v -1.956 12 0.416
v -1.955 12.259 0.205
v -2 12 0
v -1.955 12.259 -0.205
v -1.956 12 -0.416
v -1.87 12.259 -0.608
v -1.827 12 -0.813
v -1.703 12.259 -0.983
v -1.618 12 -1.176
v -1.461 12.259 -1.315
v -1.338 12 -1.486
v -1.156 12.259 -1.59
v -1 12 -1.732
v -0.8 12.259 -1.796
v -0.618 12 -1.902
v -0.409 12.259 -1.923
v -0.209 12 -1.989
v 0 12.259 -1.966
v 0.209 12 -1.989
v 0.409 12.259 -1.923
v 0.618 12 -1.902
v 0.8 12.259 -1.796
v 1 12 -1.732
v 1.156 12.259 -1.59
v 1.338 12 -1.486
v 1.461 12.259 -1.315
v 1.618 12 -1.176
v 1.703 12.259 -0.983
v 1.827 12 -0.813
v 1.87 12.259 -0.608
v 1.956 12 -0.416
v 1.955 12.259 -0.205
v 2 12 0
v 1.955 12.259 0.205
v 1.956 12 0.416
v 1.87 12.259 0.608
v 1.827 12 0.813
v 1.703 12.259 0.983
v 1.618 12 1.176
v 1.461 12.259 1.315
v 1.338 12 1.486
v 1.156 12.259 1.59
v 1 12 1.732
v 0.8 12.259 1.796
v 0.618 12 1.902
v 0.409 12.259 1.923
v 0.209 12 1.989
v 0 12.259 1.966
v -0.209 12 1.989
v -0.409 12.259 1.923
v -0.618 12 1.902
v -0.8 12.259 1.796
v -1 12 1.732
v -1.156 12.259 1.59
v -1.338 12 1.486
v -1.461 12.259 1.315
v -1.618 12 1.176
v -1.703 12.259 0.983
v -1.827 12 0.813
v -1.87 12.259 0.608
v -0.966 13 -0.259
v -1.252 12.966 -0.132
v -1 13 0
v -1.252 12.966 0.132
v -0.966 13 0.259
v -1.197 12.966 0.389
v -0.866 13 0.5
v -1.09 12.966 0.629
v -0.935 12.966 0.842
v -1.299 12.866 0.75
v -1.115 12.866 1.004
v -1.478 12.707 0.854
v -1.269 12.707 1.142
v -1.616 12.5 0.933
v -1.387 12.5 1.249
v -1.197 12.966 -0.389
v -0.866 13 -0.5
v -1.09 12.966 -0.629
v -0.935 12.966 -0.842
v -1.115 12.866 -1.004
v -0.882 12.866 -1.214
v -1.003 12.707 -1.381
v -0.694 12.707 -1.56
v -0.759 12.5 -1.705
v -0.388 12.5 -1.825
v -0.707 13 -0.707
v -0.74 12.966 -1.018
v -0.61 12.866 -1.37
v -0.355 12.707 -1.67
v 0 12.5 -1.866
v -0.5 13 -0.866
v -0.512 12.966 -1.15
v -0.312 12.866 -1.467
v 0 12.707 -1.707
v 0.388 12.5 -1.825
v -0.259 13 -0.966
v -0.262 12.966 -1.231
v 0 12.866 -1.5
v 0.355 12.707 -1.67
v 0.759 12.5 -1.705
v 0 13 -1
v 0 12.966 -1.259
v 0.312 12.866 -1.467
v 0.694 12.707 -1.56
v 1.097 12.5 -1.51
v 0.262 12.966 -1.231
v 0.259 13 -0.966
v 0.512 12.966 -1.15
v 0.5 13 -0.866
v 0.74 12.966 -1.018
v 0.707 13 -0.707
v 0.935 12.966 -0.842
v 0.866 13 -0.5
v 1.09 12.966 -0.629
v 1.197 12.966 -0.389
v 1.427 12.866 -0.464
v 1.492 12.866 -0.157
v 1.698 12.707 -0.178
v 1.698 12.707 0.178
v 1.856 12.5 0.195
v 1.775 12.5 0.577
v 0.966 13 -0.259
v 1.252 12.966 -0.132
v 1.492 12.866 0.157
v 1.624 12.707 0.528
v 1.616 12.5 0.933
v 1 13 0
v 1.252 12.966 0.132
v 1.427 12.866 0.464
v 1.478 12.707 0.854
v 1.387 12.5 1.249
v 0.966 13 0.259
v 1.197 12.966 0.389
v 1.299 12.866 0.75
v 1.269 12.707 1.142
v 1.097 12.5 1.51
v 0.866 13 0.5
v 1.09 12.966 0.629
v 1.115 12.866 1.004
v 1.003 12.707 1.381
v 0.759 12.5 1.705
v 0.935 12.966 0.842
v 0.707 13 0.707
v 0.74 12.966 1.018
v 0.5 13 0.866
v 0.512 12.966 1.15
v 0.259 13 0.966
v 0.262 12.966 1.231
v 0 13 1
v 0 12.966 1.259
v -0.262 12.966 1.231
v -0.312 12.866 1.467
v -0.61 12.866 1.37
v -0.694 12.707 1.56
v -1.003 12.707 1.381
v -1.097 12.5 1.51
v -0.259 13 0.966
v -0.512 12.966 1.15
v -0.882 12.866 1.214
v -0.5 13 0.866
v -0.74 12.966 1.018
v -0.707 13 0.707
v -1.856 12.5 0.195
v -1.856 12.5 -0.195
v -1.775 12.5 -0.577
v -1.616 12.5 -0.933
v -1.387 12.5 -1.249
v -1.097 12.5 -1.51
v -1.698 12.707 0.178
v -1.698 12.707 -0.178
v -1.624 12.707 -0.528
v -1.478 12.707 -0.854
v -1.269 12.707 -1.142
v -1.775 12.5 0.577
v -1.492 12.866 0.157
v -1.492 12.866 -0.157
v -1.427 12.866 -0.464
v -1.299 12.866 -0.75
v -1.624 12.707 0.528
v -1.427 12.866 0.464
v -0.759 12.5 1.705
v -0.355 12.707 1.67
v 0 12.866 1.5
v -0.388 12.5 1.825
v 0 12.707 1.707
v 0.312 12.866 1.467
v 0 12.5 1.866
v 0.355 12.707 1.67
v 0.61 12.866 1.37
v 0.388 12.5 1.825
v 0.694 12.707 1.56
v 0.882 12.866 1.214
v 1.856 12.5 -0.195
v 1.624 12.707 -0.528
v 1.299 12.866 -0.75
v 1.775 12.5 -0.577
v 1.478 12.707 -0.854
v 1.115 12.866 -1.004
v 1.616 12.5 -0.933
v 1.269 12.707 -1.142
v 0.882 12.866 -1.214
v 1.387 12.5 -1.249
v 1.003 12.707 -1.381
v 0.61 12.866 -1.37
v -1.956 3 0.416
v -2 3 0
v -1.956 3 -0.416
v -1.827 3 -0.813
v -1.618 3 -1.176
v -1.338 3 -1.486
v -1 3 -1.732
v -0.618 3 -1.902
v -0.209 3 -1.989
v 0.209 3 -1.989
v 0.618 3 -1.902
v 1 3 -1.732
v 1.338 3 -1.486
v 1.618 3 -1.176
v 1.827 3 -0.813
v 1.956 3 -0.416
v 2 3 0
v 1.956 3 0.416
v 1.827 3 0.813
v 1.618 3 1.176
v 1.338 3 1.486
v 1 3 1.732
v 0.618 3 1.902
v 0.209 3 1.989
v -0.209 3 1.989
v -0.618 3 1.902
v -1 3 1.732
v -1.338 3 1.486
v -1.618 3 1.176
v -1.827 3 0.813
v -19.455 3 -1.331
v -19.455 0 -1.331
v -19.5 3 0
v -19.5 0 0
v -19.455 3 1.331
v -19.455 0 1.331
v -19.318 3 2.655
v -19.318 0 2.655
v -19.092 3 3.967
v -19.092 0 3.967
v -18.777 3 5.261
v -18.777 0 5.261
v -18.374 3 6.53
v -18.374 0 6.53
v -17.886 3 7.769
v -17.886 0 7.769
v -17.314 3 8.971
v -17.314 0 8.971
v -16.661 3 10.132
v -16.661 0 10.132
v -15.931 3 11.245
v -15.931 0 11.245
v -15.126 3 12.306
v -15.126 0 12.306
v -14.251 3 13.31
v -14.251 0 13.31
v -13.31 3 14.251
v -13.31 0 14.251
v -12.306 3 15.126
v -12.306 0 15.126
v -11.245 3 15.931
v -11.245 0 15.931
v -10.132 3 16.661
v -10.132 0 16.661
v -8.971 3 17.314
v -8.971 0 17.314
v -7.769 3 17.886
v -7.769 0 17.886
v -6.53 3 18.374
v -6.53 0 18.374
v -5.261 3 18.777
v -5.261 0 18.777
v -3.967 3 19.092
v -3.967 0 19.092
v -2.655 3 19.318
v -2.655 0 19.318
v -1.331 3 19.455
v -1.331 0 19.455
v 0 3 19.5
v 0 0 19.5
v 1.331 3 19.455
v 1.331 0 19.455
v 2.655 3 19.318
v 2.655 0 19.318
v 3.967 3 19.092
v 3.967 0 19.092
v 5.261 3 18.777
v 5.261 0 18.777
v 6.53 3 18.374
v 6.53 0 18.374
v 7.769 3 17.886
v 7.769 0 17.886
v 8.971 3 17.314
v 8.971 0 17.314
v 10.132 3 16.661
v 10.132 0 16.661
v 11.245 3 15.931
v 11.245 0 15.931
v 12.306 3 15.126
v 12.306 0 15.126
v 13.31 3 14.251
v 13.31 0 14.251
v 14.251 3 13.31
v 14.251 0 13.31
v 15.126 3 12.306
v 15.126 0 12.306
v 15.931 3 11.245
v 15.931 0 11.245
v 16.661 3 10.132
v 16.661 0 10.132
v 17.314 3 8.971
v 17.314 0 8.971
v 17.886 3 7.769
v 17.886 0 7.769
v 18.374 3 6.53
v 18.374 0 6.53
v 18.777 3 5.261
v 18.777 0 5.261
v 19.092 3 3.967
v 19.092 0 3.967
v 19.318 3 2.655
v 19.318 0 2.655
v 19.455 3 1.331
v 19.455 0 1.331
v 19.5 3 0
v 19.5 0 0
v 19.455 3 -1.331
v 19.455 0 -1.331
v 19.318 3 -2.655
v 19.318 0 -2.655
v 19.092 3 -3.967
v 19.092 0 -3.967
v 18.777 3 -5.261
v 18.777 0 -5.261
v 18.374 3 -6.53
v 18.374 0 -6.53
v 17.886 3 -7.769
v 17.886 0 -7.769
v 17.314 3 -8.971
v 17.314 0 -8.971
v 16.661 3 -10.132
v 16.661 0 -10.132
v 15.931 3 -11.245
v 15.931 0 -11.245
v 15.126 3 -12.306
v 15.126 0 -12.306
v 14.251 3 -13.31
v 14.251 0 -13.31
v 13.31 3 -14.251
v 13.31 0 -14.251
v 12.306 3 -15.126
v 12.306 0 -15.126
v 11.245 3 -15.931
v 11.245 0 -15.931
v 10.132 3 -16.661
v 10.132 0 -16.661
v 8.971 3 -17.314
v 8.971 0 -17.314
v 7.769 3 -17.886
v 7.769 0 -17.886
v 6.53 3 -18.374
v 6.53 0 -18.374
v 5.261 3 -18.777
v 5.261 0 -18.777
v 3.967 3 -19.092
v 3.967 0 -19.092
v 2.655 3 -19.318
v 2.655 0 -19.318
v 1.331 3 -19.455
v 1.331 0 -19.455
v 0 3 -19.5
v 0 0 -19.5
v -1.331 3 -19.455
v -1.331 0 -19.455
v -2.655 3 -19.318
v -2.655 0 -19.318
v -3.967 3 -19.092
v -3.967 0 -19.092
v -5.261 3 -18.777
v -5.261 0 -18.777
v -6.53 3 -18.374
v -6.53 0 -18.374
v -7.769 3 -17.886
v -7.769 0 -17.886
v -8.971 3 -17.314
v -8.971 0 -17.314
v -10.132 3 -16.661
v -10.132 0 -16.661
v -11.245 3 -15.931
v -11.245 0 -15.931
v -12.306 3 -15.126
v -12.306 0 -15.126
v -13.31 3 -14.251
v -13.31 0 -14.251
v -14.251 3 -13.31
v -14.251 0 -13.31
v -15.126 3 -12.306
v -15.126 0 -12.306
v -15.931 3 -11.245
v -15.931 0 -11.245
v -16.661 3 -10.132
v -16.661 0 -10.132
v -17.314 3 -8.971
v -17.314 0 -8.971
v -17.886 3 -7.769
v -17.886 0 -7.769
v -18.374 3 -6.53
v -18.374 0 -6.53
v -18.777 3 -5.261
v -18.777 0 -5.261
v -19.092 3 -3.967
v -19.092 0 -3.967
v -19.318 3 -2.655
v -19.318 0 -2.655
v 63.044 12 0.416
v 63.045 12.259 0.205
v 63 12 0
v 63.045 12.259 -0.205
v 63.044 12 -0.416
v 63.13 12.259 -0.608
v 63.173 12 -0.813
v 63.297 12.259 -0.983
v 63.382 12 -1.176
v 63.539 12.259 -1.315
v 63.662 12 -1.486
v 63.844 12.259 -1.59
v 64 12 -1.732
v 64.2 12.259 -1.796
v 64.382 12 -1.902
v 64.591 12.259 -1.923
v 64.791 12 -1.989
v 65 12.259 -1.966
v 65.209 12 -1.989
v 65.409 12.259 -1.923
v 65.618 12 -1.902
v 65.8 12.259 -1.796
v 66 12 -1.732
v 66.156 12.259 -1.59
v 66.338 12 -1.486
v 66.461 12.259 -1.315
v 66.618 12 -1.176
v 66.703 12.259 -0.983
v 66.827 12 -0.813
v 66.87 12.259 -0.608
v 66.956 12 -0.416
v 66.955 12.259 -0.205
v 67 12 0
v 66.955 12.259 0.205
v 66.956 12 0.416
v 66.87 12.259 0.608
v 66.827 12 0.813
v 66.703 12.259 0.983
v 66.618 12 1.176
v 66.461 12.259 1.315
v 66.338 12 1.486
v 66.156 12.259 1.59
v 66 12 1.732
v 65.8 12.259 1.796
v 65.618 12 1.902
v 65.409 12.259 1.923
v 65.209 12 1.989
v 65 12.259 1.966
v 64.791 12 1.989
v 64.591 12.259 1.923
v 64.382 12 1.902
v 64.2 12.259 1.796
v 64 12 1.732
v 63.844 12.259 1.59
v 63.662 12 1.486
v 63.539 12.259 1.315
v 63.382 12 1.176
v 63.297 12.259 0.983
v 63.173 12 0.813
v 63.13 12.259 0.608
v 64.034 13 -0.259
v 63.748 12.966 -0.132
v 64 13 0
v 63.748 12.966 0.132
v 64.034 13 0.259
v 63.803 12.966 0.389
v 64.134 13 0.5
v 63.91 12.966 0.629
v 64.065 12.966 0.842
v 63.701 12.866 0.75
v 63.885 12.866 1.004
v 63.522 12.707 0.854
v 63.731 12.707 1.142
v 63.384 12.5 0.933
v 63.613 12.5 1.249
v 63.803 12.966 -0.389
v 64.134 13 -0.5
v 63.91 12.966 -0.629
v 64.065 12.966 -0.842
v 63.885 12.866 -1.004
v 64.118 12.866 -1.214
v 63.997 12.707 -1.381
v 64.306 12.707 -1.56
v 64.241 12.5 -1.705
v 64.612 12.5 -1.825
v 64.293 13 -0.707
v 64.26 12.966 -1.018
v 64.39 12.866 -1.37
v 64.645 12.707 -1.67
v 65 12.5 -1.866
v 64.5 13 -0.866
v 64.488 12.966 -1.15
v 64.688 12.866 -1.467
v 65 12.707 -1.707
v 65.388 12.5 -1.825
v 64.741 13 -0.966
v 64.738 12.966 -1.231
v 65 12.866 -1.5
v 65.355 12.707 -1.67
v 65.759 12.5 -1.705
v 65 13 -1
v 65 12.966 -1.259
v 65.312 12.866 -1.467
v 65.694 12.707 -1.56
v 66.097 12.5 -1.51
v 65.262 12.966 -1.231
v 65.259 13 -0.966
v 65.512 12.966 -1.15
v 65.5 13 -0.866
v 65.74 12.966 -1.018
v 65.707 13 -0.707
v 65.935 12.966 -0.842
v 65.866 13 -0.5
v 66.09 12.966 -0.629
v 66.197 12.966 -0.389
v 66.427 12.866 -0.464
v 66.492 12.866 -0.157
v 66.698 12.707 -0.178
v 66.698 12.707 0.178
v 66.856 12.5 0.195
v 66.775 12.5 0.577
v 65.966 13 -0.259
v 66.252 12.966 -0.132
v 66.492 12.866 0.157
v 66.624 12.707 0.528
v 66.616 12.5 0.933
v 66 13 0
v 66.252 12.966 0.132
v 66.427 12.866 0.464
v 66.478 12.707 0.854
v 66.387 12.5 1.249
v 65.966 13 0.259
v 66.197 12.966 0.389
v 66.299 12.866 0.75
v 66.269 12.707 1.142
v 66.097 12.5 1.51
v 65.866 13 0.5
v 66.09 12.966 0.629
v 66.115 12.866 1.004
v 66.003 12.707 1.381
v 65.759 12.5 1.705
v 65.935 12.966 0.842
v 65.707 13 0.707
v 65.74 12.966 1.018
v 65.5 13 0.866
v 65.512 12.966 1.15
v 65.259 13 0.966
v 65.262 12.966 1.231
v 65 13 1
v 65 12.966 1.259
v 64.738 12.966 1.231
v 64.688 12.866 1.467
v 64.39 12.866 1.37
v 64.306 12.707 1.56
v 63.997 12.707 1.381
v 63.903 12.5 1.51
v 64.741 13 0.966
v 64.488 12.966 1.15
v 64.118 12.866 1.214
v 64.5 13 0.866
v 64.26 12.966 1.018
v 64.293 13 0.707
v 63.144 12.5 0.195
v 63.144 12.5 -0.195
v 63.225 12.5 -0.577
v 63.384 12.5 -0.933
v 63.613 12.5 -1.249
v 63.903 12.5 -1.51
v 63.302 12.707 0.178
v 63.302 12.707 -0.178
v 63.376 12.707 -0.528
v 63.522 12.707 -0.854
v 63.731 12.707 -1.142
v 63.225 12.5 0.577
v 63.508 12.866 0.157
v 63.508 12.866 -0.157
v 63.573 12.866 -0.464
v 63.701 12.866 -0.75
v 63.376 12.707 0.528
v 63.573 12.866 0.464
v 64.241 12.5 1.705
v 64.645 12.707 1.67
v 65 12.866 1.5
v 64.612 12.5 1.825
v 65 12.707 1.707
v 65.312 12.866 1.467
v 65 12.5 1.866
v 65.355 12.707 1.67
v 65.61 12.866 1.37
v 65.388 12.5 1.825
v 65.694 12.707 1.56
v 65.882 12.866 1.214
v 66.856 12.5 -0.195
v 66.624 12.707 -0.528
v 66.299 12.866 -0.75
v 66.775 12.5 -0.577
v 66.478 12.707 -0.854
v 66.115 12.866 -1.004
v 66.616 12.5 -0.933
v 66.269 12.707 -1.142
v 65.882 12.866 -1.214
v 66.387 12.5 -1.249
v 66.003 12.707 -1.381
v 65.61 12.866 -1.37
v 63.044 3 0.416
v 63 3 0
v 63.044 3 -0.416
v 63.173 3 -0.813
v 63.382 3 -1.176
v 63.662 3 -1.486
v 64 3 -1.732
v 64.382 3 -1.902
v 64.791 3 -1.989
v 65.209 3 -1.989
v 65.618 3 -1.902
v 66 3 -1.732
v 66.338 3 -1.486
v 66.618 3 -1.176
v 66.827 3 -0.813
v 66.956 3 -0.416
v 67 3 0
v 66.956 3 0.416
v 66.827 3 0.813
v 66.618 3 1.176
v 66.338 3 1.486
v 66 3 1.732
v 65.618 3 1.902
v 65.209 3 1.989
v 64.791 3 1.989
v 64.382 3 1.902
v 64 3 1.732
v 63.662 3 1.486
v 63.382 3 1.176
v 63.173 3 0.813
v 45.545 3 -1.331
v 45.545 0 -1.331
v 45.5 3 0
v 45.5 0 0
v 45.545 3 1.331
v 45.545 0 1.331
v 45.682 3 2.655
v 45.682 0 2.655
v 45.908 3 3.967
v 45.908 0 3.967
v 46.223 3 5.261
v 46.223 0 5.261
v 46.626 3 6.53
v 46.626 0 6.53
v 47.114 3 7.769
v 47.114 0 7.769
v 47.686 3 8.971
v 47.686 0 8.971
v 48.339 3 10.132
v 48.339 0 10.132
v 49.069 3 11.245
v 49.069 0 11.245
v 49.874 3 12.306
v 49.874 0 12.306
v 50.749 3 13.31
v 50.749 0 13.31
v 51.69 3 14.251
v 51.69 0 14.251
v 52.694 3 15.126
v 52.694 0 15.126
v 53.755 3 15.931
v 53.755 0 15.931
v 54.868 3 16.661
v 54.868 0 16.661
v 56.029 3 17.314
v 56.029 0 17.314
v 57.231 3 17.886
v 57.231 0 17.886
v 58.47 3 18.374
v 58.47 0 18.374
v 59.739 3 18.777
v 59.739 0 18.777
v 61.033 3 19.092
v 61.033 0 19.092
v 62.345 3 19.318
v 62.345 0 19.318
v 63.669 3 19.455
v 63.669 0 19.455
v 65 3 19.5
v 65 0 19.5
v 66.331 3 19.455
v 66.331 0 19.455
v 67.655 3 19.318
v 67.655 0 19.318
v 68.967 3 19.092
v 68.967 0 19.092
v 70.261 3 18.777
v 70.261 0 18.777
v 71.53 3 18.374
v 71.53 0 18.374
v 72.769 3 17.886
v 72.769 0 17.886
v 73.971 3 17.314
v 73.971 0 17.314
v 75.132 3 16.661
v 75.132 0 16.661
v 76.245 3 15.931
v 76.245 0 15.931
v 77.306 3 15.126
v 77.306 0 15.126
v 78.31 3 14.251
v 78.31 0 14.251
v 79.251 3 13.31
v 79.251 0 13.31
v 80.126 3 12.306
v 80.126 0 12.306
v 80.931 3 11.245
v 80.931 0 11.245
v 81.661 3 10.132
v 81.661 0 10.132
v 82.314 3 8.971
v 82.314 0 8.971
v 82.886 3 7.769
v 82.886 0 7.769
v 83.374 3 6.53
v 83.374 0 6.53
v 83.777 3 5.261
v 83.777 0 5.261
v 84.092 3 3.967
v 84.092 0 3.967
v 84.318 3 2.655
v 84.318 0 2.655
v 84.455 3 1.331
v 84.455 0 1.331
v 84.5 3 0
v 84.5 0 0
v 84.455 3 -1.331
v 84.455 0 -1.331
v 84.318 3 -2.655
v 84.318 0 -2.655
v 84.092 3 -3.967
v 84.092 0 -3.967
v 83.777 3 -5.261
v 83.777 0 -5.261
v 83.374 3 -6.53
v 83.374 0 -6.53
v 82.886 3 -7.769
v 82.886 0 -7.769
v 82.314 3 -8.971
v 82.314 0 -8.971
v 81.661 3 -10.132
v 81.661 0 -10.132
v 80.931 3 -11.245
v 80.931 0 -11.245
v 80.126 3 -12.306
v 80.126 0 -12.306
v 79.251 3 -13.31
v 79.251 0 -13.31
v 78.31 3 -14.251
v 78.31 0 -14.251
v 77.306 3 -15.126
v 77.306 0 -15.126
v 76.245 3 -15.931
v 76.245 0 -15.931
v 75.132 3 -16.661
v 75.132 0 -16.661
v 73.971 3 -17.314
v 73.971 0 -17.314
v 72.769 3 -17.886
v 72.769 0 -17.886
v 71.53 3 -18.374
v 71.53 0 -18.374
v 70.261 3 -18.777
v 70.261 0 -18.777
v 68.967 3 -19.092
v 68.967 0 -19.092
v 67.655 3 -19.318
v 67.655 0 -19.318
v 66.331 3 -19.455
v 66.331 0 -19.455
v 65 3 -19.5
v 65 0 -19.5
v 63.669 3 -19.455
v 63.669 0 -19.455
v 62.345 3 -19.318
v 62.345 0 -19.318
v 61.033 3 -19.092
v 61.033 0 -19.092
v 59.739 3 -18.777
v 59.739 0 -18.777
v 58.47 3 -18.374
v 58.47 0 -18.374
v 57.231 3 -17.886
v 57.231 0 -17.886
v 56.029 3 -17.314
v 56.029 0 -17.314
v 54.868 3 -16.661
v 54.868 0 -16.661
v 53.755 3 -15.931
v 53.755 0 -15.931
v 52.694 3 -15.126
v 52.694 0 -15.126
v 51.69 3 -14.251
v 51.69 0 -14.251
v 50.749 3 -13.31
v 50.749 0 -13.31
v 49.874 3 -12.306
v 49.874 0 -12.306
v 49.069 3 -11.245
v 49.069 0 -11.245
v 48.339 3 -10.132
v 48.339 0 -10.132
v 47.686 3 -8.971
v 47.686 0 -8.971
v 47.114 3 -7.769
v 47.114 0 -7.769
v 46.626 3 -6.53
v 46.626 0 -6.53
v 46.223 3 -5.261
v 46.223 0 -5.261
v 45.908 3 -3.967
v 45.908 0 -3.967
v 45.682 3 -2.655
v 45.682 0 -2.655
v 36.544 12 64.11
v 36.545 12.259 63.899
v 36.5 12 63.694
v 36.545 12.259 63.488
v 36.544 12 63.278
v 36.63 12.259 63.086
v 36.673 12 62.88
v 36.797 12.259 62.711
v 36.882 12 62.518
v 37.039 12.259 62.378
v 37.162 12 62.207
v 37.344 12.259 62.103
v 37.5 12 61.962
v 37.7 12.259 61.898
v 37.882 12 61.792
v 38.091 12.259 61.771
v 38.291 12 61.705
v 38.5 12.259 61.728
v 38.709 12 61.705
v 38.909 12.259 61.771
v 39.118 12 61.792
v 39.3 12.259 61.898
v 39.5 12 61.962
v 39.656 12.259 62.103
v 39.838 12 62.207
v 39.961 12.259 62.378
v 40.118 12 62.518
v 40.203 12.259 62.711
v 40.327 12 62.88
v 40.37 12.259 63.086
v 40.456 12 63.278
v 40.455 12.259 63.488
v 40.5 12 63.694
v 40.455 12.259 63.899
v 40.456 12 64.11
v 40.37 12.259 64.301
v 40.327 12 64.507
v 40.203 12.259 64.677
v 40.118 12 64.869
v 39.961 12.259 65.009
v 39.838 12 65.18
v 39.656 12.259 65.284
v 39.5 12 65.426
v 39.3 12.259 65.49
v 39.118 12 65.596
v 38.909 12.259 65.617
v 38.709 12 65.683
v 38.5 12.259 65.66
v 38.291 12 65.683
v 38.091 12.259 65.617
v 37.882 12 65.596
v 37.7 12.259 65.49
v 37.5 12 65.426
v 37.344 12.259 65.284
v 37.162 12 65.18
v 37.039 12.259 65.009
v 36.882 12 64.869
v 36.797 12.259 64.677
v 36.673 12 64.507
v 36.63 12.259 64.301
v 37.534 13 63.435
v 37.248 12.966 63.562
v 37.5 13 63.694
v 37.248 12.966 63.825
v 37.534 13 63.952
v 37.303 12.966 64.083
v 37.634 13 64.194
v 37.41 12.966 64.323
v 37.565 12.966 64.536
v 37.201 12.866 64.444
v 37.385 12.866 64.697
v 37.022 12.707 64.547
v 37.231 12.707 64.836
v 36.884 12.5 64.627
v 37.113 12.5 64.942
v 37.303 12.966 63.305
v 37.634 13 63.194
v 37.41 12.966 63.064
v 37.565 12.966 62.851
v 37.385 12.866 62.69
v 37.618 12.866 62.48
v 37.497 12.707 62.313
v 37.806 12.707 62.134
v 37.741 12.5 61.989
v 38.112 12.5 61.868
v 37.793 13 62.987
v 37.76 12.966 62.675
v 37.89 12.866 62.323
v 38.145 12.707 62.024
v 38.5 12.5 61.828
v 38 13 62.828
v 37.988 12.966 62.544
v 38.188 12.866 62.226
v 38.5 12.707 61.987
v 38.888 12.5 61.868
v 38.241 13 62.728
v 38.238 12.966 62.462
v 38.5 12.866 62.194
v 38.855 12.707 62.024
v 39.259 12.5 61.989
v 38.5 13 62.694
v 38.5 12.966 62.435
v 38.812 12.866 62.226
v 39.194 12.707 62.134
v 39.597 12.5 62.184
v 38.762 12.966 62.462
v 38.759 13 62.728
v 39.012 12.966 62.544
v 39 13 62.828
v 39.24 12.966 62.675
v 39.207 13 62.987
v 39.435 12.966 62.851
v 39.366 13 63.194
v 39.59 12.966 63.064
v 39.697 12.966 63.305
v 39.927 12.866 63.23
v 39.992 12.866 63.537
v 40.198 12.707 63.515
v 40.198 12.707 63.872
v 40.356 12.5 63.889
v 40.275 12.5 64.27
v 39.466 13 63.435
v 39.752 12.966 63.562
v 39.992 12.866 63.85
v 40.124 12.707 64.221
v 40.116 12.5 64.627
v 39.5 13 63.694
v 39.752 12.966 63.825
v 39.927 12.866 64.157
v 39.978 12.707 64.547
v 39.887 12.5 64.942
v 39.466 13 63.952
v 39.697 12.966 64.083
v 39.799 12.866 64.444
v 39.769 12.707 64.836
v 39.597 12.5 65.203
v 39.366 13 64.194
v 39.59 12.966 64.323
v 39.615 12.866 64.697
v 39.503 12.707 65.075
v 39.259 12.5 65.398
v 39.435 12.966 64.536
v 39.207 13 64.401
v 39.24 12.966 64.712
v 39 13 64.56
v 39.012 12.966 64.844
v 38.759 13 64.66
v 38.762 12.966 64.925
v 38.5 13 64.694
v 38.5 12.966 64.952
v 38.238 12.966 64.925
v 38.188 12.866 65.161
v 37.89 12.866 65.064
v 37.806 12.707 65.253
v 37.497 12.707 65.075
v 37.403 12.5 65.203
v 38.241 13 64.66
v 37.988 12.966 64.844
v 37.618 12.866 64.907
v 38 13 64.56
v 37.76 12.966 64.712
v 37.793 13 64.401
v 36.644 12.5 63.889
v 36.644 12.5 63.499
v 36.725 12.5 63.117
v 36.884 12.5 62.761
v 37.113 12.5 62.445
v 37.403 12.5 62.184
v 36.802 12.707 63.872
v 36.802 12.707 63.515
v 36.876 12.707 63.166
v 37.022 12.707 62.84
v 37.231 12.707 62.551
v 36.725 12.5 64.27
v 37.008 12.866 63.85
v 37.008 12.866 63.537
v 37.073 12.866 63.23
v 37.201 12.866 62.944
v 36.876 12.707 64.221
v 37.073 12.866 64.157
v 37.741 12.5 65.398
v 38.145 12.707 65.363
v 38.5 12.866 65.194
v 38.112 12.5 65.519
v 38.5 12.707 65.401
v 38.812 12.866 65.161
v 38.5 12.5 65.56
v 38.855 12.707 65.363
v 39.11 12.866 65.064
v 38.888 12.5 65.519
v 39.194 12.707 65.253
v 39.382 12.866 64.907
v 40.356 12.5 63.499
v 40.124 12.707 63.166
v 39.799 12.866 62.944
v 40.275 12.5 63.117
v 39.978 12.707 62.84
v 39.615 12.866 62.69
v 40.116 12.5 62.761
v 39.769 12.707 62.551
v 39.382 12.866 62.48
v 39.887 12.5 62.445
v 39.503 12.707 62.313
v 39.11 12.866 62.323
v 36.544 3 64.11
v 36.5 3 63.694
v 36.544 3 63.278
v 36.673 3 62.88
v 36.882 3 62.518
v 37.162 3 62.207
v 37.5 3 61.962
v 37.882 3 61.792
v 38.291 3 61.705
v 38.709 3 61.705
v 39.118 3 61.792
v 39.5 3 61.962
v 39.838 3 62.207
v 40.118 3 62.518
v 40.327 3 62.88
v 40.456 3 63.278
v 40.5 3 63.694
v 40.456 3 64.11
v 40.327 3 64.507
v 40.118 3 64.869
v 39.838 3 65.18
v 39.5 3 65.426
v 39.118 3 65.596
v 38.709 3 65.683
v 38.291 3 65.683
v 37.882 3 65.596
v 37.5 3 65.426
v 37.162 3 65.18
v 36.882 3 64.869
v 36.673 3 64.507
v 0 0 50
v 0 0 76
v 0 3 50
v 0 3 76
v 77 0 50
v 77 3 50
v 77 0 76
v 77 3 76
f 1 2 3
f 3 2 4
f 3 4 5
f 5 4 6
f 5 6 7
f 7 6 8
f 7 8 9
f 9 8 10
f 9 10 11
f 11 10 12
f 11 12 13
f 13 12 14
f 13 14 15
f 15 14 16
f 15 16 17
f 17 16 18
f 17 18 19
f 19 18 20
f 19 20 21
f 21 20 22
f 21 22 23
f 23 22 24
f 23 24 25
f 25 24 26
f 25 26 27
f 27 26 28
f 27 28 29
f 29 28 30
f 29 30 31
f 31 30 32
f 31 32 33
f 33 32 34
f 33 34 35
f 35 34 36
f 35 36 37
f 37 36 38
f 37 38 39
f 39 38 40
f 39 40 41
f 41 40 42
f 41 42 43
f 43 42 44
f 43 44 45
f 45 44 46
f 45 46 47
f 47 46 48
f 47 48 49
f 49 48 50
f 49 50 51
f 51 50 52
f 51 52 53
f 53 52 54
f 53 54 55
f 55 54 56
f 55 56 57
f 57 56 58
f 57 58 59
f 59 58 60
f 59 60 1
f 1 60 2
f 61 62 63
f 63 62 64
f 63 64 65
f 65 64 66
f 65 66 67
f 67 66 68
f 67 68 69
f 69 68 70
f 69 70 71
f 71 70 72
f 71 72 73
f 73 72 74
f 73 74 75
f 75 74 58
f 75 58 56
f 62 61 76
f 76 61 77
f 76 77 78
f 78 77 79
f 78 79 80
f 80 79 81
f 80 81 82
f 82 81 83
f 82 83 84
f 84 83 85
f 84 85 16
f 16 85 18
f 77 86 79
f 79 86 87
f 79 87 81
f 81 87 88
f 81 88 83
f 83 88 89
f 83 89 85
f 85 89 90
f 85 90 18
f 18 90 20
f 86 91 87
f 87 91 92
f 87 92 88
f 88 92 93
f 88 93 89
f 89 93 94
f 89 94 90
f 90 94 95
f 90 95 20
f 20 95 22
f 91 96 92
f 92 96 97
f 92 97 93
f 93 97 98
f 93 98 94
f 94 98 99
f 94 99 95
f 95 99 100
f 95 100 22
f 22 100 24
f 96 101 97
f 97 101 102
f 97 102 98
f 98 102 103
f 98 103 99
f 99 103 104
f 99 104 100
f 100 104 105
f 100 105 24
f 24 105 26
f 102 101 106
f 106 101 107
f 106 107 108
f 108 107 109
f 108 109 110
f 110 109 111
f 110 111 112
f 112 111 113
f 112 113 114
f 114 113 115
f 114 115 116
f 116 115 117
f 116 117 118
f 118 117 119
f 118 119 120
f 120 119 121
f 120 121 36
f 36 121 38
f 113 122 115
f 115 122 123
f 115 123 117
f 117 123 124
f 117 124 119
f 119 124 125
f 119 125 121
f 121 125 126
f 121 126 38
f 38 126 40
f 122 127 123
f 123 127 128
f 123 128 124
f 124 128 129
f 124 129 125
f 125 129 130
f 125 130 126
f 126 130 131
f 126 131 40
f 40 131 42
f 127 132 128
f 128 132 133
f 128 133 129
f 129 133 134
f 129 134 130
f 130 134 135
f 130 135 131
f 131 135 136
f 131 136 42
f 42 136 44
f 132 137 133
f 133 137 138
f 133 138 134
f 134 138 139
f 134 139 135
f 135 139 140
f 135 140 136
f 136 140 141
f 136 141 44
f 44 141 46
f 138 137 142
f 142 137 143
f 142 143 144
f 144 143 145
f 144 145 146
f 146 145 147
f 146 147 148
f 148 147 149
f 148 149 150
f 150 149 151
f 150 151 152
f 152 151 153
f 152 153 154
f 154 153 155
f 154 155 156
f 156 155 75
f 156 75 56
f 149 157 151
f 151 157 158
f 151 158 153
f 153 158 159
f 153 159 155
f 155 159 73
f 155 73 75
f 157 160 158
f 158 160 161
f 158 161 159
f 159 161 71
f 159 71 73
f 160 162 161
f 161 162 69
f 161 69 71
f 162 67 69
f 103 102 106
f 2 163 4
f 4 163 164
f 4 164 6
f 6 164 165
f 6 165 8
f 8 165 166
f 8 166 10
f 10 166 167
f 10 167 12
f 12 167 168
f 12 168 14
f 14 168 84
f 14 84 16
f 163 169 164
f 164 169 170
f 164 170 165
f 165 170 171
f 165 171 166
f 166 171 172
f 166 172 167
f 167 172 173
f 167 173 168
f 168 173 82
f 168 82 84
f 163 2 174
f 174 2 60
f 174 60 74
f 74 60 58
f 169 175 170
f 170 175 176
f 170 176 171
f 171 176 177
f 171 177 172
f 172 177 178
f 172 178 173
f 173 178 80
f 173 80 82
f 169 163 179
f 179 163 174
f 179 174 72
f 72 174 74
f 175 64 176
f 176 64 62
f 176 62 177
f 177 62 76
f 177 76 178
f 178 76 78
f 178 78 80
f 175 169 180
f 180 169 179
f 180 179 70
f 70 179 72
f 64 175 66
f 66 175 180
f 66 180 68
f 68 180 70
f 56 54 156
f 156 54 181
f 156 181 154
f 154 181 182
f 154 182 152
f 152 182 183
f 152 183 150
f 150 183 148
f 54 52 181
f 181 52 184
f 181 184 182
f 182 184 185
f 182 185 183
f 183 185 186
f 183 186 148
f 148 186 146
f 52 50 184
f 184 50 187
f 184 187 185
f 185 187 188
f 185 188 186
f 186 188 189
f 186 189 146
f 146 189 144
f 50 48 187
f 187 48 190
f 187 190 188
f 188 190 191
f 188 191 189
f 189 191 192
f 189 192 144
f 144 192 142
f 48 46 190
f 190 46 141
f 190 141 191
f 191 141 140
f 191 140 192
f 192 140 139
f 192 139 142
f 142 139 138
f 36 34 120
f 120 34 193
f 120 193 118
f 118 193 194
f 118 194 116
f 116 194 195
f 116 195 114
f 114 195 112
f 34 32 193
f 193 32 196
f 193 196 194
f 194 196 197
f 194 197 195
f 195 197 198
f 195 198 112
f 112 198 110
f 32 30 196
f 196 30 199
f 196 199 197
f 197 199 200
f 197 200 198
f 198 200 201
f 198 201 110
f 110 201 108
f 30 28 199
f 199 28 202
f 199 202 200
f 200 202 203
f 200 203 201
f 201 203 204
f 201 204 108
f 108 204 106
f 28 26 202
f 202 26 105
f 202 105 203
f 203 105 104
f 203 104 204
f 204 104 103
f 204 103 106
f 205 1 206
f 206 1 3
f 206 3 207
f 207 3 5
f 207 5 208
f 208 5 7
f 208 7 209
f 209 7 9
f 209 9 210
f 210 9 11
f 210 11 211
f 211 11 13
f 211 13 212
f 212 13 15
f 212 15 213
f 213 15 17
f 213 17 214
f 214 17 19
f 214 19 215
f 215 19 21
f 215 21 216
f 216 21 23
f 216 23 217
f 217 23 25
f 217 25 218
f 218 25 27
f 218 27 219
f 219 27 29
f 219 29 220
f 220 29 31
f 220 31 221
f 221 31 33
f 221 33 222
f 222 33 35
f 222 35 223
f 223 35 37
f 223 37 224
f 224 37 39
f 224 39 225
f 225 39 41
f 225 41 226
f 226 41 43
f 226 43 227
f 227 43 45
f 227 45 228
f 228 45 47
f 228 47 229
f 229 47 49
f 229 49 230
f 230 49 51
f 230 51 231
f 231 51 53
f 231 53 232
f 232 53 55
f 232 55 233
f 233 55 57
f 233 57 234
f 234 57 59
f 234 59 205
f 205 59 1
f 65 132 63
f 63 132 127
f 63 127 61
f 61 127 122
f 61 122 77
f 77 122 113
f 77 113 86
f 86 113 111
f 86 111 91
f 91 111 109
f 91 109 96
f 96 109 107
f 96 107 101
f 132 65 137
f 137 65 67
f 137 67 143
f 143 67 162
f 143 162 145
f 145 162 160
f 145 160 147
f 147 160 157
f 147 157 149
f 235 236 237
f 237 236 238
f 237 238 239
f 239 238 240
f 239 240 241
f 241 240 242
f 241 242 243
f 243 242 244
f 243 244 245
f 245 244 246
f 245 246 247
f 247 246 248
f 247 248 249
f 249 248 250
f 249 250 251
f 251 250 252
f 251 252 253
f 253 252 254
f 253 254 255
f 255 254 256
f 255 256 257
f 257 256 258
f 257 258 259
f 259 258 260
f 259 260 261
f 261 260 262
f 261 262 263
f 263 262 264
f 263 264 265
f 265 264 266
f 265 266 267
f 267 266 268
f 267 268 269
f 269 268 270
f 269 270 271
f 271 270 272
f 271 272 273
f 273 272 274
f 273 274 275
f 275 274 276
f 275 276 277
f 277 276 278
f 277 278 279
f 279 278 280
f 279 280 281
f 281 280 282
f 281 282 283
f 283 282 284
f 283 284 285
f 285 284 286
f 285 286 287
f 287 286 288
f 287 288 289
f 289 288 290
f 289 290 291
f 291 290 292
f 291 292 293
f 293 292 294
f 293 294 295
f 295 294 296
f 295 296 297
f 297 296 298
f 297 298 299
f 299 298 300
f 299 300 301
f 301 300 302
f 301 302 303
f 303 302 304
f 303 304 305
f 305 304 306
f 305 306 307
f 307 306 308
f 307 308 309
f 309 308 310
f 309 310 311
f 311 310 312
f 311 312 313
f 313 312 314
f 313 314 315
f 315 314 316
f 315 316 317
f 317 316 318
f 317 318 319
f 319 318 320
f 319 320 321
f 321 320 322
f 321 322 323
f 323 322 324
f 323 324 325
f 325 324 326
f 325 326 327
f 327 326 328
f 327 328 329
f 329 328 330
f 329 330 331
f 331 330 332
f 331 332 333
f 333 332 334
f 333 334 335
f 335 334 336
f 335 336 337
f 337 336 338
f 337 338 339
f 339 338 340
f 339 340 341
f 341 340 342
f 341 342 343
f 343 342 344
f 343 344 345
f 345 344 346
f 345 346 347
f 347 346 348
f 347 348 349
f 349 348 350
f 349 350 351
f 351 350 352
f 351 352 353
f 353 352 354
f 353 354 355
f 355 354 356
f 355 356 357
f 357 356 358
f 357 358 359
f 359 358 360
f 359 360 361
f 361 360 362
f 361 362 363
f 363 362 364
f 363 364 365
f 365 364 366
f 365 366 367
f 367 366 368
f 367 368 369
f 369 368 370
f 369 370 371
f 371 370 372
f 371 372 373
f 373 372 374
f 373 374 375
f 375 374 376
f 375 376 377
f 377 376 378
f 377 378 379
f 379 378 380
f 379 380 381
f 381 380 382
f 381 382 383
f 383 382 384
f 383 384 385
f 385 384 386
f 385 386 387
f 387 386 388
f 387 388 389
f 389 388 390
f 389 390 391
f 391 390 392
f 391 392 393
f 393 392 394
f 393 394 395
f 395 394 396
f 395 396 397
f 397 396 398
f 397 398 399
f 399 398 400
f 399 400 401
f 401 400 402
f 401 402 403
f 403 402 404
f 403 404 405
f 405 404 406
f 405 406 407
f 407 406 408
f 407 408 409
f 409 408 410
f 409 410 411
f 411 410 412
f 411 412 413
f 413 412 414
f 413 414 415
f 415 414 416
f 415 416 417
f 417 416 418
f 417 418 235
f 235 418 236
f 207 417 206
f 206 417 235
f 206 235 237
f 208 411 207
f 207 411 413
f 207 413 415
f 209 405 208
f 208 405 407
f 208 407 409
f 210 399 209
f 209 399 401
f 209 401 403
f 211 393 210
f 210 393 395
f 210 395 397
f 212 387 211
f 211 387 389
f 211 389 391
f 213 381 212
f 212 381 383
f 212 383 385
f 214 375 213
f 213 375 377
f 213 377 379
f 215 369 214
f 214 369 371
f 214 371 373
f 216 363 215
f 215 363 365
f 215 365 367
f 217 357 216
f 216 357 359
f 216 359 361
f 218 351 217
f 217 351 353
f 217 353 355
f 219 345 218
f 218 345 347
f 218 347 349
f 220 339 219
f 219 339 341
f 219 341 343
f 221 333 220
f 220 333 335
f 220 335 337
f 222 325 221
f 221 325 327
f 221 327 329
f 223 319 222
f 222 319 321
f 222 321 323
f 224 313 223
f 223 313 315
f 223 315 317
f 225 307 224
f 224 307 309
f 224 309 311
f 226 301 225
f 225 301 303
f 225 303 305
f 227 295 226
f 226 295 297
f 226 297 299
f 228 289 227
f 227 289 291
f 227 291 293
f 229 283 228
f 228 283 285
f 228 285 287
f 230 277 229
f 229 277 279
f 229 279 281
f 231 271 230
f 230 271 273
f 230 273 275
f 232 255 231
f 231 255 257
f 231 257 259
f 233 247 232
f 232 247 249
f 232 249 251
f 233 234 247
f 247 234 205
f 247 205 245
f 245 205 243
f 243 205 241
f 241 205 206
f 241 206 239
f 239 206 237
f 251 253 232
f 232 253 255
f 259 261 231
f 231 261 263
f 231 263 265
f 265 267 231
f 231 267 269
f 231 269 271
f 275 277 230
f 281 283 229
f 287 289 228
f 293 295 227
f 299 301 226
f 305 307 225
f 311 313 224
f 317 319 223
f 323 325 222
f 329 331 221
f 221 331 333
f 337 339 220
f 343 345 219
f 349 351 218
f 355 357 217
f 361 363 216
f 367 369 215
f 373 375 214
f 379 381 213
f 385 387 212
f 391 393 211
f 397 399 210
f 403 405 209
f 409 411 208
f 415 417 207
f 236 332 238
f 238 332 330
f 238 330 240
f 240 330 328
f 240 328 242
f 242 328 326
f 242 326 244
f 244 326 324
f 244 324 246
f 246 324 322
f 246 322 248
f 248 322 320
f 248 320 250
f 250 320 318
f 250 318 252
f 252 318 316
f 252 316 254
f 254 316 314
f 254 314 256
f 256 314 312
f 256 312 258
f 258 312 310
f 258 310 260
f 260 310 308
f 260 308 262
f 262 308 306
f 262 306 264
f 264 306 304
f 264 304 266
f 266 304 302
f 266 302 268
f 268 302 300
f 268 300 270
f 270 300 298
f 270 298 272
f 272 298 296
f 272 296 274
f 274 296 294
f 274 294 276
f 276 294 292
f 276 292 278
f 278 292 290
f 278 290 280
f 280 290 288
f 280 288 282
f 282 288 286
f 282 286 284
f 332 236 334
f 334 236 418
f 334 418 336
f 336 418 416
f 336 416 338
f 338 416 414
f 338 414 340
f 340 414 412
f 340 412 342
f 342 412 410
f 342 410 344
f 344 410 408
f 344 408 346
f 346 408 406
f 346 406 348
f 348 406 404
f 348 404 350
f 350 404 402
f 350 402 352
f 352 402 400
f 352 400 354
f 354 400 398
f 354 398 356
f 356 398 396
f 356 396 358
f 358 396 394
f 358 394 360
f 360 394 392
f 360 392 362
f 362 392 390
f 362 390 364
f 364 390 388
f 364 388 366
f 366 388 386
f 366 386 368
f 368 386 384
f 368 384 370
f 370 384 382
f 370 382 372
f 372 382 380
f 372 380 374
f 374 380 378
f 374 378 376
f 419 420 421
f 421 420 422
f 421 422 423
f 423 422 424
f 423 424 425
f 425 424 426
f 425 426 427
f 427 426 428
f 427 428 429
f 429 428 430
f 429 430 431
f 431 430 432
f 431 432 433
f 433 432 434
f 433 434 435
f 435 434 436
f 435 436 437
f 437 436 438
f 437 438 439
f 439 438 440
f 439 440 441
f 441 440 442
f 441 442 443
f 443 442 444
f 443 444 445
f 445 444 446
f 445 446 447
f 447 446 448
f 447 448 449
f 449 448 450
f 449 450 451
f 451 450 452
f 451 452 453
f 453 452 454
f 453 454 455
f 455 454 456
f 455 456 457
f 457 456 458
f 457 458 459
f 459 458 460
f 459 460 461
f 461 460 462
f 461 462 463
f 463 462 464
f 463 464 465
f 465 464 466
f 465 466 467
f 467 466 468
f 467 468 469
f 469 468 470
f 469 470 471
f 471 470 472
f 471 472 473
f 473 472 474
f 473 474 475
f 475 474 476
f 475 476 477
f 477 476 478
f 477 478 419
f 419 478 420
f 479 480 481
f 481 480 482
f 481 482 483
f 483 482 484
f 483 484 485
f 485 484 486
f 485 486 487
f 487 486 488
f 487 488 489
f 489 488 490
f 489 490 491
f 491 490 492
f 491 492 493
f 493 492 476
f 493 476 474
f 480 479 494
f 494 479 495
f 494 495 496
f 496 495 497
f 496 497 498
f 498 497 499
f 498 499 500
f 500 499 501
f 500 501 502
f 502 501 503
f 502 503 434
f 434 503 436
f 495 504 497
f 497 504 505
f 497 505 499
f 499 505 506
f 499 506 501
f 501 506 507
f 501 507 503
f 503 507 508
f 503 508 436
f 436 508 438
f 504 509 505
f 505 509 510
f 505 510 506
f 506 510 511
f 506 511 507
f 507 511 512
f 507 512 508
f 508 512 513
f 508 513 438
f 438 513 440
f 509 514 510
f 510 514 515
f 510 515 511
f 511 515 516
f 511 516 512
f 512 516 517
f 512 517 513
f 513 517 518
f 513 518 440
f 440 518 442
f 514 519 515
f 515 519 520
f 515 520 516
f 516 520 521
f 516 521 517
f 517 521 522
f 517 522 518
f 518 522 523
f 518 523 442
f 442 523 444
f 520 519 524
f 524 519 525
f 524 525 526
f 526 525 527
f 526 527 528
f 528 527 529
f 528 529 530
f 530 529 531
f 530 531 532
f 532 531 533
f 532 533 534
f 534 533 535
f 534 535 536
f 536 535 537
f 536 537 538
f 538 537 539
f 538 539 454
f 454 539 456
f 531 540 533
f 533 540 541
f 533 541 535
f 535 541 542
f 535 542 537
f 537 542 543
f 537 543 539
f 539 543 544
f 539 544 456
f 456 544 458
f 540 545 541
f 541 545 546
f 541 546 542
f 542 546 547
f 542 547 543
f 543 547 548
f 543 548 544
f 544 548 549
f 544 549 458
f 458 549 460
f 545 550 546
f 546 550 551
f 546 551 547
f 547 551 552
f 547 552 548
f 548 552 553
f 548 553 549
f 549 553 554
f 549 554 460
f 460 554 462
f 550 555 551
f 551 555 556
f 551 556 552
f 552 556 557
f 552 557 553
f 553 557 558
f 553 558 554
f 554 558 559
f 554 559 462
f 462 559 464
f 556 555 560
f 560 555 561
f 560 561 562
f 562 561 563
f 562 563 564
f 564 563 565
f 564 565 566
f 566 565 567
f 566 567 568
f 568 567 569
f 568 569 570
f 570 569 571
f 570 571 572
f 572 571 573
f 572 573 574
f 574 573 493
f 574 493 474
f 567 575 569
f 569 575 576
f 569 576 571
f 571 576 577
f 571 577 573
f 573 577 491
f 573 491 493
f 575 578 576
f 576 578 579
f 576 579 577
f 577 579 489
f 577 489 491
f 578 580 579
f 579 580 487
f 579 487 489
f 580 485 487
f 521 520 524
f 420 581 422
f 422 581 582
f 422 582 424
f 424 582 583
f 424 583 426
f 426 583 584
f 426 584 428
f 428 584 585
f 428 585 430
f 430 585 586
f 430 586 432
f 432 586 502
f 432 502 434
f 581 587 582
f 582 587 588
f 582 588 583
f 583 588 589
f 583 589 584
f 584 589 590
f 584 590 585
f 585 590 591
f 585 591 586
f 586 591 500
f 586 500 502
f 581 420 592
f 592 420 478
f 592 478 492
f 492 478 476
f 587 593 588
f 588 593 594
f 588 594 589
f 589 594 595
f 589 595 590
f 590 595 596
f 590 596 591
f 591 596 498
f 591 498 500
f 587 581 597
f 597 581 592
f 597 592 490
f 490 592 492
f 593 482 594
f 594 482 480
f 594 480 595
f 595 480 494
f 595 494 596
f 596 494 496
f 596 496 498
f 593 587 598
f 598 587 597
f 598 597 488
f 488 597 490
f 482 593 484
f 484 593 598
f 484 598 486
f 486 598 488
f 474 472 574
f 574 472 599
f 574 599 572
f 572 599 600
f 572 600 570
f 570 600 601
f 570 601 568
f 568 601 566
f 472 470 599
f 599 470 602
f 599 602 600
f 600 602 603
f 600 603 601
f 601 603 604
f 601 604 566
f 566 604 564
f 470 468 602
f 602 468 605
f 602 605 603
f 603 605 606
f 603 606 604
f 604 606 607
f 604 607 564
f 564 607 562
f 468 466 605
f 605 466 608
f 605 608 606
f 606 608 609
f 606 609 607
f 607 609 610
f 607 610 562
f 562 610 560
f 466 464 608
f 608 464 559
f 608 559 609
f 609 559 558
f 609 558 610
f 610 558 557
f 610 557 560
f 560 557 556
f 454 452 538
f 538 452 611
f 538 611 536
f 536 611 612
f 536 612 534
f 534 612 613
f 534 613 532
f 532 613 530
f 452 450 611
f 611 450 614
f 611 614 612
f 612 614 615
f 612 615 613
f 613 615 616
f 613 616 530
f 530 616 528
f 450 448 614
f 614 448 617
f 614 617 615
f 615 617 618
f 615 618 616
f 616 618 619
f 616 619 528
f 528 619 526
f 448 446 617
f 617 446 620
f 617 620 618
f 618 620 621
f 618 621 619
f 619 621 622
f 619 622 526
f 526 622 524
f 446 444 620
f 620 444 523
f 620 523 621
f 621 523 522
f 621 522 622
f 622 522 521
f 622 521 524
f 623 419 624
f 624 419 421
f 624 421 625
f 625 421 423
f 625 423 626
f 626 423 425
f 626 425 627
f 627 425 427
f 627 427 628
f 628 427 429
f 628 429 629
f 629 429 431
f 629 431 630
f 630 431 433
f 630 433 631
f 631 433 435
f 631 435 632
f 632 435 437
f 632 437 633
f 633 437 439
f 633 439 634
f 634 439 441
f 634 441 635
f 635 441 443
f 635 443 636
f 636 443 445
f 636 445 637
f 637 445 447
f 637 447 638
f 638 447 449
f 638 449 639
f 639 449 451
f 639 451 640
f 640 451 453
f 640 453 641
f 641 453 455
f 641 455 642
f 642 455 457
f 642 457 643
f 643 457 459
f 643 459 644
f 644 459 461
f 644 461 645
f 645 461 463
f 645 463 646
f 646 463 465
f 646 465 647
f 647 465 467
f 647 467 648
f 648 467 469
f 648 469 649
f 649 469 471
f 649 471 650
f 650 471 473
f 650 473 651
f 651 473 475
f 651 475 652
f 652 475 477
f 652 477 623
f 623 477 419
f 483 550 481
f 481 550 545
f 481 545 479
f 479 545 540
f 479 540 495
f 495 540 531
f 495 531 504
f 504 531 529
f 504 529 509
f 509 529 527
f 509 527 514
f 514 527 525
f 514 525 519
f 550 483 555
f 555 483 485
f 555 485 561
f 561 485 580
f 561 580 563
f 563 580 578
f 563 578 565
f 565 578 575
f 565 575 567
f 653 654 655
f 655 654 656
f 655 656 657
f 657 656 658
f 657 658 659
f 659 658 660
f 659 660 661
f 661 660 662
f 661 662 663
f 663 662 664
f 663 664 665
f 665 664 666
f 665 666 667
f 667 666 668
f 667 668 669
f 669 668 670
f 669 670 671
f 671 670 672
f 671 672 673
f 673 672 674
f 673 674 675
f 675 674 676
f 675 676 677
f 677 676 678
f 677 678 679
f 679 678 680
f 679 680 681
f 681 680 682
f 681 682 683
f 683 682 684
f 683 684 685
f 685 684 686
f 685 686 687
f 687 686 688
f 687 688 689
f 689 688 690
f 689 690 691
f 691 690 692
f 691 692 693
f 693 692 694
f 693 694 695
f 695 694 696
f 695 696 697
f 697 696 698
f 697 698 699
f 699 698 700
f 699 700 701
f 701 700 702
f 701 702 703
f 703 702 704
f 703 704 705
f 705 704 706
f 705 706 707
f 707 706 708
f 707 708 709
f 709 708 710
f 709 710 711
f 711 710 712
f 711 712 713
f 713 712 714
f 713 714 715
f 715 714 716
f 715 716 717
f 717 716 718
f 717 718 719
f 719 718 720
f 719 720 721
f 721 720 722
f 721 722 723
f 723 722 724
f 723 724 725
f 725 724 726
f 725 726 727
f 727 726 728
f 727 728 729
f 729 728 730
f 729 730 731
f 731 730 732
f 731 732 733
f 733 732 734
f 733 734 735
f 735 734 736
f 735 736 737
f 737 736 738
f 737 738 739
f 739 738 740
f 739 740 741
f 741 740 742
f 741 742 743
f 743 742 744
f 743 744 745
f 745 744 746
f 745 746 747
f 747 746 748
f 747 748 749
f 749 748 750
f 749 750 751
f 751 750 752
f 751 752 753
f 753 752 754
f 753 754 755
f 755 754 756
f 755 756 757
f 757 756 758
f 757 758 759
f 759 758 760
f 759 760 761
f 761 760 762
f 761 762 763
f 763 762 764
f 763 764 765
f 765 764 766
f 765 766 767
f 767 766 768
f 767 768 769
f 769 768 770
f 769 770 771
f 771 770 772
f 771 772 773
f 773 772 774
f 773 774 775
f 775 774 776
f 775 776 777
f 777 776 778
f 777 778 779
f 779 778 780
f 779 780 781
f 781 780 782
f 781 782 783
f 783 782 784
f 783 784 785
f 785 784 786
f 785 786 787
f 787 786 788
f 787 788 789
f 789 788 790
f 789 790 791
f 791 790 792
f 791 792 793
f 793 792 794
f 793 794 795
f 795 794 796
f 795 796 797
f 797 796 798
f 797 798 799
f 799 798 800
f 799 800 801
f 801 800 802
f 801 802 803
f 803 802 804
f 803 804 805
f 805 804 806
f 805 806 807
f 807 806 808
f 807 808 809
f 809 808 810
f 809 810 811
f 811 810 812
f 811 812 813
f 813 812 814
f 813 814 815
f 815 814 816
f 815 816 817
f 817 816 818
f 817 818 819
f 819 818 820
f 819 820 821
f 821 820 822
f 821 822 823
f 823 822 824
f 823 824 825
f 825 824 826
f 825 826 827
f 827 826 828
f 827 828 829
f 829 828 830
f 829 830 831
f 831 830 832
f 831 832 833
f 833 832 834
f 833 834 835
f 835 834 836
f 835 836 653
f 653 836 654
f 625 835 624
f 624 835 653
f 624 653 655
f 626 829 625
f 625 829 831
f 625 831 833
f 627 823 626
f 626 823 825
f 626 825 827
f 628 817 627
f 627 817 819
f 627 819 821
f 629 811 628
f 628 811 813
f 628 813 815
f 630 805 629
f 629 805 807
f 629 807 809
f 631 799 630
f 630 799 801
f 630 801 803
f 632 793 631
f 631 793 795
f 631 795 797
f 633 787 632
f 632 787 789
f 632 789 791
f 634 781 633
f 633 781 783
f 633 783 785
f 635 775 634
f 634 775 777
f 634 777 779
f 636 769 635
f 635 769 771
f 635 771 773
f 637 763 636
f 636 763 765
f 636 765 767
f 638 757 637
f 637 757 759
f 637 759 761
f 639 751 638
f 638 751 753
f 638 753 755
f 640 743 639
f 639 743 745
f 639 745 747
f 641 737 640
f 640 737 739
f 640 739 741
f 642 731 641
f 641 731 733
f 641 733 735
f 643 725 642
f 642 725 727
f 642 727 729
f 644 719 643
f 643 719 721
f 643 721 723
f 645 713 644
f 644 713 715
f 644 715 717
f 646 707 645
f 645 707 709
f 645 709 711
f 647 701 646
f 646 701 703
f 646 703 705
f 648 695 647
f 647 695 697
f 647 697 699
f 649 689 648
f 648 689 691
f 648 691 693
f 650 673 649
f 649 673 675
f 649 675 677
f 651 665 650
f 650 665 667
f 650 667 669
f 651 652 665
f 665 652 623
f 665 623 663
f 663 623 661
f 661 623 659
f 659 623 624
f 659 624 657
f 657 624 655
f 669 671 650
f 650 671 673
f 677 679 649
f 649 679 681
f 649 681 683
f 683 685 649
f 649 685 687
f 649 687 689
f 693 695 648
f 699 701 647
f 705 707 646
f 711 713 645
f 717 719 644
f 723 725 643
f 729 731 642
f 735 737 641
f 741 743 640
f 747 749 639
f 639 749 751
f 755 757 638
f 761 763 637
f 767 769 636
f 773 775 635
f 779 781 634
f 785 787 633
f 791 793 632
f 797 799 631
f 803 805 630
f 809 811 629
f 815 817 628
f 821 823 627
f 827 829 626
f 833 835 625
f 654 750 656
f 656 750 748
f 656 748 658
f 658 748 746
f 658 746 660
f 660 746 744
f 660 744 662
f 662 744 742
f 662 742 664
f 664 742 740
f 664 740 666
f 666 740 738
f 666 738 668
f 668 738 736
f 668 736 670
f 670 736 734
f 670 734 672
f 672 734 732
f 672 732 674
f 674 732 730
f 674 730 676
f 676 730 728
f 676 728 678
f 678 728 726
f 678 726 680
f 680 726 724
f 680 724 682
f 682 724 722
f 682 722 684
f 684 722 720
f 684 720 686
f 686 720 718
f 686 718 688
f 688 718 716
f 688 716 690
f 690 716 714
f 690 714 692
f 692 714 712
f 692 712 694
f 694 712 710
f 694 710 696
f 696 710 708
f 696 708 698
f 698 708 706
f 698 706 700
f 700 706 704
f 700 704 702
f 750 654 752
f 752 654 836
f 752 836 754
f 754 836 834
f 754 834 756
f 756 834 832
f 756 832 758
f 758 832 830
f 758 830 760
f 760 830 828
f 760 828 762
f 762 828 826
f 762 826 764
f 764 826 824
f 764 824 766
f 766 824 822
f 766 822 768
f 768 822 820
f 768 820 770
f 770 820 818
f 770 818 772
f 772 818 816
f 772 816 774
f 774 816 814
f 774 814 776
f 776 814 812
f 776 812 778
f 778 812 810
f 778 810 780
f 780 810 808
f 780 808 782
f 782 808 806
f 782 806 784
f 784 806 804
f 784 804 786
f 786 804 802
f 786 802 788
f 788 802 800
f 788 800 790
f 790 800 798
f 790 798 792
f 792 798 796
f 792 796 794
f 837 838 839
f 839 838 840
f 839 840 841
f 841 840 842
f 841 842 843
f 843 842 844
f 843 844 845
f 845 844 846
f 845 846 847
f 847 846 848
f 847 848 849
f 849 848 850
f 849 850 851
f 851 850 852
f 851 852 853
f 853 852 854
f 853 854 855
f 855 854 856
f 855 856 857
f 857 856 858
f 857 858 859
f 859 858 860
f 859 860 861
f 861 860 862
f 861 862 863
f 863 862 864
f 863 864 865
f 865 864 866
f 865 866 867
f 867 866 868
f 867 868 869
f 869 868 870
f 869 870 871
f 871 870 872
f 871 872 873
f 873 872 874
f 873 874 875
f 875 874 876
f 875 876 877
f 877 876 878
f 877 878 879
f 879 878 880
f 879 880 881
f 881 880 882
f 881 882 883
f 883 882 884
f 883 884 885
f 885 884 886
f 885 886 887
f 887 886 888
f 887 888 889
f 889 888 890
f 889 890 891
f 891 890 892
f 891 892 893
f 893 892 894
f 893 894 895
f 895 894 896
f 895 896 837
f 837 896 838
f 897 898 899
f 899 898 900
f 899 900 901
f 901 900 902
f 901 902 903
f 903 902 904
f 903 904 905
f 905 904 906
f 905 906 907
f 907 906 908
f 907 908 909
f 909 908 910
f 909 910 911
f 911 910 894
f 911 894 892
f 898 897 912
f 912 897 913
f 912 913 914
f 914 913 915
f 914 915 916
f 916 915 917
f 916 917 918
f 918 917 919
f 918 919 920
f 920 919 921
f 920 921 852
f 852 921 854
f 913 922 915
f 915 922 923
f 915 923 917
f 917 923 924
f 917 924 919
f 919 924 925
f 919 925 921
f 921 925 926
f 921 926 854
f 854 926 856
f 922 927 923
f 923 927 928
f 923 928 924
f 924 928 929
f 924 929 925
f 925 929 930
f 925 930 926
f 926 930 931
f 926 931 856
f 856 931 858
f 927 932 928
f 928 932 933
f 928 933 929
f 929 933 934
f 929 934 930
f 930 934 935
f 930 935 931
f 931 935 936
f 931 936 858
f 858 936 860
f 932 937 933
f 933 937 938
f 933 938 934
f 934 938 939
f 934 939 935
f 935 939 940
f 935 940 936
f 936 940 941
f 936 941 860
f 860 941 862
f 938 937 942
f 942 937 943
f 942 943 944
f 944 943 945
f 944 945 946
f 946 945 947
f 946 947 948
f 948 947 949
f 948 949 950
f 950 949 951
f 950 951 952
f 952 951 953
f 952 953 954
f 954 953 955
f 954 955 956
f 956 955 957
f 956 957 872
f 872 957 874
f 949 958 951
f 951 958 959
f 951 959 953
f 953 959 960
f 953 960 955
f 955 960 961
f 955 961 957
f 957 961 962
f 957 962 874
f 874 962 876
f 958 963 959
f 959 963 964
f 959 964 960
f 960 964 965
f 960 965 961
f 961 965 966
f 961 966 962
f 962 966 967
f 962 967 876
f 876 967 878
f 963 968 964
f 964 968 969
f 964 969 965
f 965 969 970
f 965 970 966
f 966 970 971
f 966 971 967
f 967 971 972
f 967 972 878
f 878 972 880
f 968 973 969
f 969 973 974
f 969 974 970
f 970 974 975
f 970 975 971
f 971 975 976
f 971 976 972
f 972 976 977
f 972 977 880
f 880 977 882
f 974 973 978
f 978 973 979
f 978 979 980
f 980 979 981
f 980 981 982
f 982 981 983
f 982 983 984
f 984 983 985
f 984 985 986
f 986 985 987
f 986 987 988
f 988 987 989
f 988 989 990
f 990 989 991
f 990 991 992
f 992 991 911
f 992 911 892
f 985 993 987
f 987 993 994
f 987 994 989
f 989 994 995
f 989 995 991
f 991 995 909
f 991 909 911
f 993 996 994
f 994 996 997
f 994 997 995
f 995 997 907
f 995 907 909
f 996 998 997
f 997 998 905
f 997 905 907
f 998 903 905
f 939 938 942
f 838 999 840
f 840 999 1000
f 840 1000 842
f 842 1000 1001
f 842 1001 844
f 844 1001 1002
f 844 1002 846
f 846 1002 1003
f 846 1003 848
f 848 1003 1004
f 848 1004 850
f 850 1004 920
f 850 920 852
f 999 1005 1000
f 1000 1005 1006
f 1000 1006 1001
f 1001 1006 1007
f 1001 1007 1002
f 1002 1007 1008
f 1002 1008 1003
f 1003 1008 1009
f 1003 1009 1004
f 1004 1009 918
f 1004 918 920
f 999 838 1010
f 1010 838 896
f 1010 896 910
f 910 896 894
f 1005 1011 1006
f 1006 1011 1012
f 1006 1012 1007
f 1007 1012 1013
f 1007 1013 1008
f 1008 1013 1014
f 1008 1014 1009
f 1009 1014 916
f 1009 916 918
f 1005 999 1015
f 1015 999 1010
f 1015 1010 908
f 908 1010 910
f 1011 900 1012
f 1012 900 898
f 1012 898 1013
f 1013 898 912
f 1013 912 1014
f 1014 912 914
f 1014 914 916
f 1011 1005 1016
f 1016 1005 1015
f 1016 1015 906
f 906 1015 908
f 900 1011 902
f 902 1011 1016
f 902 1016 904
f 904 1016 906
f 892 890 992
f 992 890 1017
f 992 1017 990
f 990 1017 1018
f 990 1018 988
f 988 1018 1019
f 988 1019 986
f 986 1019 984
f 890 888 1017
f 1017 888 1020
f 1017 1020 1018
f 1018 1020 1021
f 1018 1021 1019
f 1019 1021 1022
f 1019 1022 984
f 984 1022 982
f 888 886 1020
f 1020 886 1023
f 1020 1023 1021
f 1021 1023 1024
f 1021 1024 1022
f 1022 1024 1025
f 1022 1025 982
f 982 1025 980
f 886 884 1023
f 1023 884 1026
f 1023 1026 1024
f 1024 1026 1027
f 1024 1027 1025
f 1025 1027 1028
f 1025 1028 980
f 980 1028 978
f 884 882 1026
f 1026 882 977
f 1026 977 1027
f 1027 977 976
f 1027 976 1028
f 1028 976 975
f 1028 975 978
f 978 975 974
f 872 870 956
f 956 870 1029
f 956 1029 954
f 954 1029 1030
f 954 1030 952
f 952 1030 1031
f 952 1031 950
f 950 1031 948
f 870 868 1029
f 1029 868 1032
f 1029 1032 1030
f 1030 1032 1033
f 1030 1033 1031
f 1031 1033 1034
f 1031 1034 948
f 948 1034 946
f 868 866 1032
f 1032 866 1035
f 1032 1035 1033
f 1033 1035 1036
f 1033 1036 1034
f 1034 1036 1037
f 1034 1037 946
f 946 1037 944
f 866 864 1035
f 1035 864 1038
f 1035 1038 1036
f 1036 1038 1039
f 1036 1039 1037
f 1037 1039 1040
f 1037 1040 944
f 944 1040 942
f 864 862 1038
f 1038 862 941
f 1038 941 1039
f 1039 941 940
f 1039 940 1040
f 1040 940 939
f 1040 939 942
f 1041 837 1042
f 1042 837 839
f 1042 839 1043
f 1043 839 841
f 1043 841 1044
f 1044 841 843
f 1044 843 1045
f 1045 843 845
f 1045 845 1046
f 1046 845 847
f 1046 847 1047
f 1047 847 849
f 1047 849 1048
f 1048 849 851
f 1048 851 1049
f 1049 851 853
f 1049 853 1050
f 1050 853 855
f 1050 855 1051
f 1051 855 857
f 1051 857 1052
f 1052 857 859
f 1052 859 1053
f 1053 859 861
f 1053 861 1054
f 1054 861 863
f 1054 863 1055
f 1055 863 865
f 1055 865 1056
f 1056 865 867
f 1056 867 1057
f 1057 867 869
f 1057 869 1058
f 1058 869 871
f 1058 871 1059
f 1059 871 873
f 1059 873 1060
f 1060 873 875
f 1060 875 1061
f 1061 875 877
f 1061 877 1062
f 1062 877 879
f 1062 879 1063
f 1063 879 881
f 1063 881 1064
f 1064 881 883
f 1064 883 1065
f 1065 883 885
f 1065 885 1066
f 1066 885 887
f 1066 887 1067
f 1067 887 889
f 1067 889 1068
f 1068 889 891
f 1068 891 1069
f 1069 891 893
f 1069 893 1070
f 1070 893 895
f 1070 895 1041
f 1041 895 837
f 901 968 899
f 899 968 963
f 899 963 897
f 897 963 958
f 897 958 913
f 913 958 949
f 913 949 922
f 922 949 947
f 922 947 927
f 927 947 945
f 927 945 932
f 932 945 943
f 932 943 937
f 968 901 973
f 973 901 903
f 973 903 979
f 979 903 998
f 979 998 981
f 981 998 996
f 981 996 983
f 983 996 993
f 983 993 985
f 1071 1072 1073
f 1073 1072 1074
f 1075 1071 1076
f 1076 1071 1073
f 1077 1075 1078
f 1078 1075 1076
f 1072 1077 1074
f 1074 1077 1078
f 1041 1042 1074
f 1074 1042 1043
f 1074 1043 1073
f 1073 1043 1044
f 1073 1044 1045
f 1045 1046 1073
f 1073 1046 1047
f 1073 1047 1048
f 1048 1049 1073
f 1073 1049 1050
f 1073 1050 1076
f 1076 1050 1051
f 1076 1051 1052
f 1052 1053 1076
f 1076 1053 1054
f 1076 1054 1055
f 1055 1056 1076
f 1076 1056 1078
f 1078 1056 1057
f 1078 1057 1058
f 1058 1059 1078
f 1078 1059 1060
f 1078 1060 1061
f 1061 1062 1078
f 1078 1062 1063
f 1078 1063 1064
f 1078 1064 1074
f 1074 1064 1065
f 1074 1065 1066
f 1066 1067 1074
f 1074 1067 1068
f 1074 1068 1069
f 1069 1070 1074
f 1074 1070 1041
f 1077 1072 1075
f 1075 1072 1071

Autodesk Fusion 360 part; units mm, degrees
sketch "Sketch1" plane through (0, 0, 0) normal (0, 1, 0) x (1, 0, 0)
  circle A0 centre (0, 0) radius 19.5
  dimension "d1" = 39
extrude "Extrude1" add sketch "Sketch1" along normal blind 3 makes body 1
sketch "Sketch2" plane through (0, 0, 0) normal (0, 1, 0) x (1, 0, 0)
  circle A0 centre (0, 0) radius 2
  dimension "d4" = 4
extrude "Extrude2" add sketch "Sketch2" along normal blind 13 bodies 1
fillet "Fillet1" radius 1 1 edges at (-1.8647, 13, 0.7232) on bodies 1
sketch "Sketch3" plane through (0, 0, 0) normal (0, 1, 0) x (1, 0, 0)
  circle A0 centre (65, 0) radius 19.5
  dimension "d8" = 39
extrude "Extrude3" add sketch "Sketch3" along normal blind 3 separate body makes body 2
sketch "Sketch4" plane through (0, 0, 0) normal (0, 1, 0) x (1, 0, 0)
  circle A0 centre (65, 0) radius 2
  dimension "d11" = 4
extrude "Extrude4" add sketch "Sketch4" along normal blind 13 bodies 2
fillet "Fillet2" radius 1 1 edges at (63.1353, 13, 0.7232) on bodies 2
sketch "Sketch5" plane through (0, 0, 0) normal (0, 1, 0) x (1, 0, 0)
  line L0 (0, -50) -> (77, -50)
  line L1 (77, -50) -> (77, -76)
  line L2 (77, -76) -> (0, -76)
  line L3 (0, -76) -> (0, -50)
  dimension "d15" = 77
  dimension "d16" = 26
extrude "Extrude5" add sketch "Sketch5" along normal blind 3 separate body makes body 3
sketch "Sketch6" plane through (0, 0, 0) normal (0, 1, 0) x (1, 0, 0)
  circle A0 centre (38.5, -63.6937) radius 2
  dimension "d19" = 4
extrude "Extrude6" add sketch "Sketch6" along normal blind 13 bodies 3
fillet "Fillet3" radius 1 1 edges at (36.6353, 13, 64.4169) on bodies 3
